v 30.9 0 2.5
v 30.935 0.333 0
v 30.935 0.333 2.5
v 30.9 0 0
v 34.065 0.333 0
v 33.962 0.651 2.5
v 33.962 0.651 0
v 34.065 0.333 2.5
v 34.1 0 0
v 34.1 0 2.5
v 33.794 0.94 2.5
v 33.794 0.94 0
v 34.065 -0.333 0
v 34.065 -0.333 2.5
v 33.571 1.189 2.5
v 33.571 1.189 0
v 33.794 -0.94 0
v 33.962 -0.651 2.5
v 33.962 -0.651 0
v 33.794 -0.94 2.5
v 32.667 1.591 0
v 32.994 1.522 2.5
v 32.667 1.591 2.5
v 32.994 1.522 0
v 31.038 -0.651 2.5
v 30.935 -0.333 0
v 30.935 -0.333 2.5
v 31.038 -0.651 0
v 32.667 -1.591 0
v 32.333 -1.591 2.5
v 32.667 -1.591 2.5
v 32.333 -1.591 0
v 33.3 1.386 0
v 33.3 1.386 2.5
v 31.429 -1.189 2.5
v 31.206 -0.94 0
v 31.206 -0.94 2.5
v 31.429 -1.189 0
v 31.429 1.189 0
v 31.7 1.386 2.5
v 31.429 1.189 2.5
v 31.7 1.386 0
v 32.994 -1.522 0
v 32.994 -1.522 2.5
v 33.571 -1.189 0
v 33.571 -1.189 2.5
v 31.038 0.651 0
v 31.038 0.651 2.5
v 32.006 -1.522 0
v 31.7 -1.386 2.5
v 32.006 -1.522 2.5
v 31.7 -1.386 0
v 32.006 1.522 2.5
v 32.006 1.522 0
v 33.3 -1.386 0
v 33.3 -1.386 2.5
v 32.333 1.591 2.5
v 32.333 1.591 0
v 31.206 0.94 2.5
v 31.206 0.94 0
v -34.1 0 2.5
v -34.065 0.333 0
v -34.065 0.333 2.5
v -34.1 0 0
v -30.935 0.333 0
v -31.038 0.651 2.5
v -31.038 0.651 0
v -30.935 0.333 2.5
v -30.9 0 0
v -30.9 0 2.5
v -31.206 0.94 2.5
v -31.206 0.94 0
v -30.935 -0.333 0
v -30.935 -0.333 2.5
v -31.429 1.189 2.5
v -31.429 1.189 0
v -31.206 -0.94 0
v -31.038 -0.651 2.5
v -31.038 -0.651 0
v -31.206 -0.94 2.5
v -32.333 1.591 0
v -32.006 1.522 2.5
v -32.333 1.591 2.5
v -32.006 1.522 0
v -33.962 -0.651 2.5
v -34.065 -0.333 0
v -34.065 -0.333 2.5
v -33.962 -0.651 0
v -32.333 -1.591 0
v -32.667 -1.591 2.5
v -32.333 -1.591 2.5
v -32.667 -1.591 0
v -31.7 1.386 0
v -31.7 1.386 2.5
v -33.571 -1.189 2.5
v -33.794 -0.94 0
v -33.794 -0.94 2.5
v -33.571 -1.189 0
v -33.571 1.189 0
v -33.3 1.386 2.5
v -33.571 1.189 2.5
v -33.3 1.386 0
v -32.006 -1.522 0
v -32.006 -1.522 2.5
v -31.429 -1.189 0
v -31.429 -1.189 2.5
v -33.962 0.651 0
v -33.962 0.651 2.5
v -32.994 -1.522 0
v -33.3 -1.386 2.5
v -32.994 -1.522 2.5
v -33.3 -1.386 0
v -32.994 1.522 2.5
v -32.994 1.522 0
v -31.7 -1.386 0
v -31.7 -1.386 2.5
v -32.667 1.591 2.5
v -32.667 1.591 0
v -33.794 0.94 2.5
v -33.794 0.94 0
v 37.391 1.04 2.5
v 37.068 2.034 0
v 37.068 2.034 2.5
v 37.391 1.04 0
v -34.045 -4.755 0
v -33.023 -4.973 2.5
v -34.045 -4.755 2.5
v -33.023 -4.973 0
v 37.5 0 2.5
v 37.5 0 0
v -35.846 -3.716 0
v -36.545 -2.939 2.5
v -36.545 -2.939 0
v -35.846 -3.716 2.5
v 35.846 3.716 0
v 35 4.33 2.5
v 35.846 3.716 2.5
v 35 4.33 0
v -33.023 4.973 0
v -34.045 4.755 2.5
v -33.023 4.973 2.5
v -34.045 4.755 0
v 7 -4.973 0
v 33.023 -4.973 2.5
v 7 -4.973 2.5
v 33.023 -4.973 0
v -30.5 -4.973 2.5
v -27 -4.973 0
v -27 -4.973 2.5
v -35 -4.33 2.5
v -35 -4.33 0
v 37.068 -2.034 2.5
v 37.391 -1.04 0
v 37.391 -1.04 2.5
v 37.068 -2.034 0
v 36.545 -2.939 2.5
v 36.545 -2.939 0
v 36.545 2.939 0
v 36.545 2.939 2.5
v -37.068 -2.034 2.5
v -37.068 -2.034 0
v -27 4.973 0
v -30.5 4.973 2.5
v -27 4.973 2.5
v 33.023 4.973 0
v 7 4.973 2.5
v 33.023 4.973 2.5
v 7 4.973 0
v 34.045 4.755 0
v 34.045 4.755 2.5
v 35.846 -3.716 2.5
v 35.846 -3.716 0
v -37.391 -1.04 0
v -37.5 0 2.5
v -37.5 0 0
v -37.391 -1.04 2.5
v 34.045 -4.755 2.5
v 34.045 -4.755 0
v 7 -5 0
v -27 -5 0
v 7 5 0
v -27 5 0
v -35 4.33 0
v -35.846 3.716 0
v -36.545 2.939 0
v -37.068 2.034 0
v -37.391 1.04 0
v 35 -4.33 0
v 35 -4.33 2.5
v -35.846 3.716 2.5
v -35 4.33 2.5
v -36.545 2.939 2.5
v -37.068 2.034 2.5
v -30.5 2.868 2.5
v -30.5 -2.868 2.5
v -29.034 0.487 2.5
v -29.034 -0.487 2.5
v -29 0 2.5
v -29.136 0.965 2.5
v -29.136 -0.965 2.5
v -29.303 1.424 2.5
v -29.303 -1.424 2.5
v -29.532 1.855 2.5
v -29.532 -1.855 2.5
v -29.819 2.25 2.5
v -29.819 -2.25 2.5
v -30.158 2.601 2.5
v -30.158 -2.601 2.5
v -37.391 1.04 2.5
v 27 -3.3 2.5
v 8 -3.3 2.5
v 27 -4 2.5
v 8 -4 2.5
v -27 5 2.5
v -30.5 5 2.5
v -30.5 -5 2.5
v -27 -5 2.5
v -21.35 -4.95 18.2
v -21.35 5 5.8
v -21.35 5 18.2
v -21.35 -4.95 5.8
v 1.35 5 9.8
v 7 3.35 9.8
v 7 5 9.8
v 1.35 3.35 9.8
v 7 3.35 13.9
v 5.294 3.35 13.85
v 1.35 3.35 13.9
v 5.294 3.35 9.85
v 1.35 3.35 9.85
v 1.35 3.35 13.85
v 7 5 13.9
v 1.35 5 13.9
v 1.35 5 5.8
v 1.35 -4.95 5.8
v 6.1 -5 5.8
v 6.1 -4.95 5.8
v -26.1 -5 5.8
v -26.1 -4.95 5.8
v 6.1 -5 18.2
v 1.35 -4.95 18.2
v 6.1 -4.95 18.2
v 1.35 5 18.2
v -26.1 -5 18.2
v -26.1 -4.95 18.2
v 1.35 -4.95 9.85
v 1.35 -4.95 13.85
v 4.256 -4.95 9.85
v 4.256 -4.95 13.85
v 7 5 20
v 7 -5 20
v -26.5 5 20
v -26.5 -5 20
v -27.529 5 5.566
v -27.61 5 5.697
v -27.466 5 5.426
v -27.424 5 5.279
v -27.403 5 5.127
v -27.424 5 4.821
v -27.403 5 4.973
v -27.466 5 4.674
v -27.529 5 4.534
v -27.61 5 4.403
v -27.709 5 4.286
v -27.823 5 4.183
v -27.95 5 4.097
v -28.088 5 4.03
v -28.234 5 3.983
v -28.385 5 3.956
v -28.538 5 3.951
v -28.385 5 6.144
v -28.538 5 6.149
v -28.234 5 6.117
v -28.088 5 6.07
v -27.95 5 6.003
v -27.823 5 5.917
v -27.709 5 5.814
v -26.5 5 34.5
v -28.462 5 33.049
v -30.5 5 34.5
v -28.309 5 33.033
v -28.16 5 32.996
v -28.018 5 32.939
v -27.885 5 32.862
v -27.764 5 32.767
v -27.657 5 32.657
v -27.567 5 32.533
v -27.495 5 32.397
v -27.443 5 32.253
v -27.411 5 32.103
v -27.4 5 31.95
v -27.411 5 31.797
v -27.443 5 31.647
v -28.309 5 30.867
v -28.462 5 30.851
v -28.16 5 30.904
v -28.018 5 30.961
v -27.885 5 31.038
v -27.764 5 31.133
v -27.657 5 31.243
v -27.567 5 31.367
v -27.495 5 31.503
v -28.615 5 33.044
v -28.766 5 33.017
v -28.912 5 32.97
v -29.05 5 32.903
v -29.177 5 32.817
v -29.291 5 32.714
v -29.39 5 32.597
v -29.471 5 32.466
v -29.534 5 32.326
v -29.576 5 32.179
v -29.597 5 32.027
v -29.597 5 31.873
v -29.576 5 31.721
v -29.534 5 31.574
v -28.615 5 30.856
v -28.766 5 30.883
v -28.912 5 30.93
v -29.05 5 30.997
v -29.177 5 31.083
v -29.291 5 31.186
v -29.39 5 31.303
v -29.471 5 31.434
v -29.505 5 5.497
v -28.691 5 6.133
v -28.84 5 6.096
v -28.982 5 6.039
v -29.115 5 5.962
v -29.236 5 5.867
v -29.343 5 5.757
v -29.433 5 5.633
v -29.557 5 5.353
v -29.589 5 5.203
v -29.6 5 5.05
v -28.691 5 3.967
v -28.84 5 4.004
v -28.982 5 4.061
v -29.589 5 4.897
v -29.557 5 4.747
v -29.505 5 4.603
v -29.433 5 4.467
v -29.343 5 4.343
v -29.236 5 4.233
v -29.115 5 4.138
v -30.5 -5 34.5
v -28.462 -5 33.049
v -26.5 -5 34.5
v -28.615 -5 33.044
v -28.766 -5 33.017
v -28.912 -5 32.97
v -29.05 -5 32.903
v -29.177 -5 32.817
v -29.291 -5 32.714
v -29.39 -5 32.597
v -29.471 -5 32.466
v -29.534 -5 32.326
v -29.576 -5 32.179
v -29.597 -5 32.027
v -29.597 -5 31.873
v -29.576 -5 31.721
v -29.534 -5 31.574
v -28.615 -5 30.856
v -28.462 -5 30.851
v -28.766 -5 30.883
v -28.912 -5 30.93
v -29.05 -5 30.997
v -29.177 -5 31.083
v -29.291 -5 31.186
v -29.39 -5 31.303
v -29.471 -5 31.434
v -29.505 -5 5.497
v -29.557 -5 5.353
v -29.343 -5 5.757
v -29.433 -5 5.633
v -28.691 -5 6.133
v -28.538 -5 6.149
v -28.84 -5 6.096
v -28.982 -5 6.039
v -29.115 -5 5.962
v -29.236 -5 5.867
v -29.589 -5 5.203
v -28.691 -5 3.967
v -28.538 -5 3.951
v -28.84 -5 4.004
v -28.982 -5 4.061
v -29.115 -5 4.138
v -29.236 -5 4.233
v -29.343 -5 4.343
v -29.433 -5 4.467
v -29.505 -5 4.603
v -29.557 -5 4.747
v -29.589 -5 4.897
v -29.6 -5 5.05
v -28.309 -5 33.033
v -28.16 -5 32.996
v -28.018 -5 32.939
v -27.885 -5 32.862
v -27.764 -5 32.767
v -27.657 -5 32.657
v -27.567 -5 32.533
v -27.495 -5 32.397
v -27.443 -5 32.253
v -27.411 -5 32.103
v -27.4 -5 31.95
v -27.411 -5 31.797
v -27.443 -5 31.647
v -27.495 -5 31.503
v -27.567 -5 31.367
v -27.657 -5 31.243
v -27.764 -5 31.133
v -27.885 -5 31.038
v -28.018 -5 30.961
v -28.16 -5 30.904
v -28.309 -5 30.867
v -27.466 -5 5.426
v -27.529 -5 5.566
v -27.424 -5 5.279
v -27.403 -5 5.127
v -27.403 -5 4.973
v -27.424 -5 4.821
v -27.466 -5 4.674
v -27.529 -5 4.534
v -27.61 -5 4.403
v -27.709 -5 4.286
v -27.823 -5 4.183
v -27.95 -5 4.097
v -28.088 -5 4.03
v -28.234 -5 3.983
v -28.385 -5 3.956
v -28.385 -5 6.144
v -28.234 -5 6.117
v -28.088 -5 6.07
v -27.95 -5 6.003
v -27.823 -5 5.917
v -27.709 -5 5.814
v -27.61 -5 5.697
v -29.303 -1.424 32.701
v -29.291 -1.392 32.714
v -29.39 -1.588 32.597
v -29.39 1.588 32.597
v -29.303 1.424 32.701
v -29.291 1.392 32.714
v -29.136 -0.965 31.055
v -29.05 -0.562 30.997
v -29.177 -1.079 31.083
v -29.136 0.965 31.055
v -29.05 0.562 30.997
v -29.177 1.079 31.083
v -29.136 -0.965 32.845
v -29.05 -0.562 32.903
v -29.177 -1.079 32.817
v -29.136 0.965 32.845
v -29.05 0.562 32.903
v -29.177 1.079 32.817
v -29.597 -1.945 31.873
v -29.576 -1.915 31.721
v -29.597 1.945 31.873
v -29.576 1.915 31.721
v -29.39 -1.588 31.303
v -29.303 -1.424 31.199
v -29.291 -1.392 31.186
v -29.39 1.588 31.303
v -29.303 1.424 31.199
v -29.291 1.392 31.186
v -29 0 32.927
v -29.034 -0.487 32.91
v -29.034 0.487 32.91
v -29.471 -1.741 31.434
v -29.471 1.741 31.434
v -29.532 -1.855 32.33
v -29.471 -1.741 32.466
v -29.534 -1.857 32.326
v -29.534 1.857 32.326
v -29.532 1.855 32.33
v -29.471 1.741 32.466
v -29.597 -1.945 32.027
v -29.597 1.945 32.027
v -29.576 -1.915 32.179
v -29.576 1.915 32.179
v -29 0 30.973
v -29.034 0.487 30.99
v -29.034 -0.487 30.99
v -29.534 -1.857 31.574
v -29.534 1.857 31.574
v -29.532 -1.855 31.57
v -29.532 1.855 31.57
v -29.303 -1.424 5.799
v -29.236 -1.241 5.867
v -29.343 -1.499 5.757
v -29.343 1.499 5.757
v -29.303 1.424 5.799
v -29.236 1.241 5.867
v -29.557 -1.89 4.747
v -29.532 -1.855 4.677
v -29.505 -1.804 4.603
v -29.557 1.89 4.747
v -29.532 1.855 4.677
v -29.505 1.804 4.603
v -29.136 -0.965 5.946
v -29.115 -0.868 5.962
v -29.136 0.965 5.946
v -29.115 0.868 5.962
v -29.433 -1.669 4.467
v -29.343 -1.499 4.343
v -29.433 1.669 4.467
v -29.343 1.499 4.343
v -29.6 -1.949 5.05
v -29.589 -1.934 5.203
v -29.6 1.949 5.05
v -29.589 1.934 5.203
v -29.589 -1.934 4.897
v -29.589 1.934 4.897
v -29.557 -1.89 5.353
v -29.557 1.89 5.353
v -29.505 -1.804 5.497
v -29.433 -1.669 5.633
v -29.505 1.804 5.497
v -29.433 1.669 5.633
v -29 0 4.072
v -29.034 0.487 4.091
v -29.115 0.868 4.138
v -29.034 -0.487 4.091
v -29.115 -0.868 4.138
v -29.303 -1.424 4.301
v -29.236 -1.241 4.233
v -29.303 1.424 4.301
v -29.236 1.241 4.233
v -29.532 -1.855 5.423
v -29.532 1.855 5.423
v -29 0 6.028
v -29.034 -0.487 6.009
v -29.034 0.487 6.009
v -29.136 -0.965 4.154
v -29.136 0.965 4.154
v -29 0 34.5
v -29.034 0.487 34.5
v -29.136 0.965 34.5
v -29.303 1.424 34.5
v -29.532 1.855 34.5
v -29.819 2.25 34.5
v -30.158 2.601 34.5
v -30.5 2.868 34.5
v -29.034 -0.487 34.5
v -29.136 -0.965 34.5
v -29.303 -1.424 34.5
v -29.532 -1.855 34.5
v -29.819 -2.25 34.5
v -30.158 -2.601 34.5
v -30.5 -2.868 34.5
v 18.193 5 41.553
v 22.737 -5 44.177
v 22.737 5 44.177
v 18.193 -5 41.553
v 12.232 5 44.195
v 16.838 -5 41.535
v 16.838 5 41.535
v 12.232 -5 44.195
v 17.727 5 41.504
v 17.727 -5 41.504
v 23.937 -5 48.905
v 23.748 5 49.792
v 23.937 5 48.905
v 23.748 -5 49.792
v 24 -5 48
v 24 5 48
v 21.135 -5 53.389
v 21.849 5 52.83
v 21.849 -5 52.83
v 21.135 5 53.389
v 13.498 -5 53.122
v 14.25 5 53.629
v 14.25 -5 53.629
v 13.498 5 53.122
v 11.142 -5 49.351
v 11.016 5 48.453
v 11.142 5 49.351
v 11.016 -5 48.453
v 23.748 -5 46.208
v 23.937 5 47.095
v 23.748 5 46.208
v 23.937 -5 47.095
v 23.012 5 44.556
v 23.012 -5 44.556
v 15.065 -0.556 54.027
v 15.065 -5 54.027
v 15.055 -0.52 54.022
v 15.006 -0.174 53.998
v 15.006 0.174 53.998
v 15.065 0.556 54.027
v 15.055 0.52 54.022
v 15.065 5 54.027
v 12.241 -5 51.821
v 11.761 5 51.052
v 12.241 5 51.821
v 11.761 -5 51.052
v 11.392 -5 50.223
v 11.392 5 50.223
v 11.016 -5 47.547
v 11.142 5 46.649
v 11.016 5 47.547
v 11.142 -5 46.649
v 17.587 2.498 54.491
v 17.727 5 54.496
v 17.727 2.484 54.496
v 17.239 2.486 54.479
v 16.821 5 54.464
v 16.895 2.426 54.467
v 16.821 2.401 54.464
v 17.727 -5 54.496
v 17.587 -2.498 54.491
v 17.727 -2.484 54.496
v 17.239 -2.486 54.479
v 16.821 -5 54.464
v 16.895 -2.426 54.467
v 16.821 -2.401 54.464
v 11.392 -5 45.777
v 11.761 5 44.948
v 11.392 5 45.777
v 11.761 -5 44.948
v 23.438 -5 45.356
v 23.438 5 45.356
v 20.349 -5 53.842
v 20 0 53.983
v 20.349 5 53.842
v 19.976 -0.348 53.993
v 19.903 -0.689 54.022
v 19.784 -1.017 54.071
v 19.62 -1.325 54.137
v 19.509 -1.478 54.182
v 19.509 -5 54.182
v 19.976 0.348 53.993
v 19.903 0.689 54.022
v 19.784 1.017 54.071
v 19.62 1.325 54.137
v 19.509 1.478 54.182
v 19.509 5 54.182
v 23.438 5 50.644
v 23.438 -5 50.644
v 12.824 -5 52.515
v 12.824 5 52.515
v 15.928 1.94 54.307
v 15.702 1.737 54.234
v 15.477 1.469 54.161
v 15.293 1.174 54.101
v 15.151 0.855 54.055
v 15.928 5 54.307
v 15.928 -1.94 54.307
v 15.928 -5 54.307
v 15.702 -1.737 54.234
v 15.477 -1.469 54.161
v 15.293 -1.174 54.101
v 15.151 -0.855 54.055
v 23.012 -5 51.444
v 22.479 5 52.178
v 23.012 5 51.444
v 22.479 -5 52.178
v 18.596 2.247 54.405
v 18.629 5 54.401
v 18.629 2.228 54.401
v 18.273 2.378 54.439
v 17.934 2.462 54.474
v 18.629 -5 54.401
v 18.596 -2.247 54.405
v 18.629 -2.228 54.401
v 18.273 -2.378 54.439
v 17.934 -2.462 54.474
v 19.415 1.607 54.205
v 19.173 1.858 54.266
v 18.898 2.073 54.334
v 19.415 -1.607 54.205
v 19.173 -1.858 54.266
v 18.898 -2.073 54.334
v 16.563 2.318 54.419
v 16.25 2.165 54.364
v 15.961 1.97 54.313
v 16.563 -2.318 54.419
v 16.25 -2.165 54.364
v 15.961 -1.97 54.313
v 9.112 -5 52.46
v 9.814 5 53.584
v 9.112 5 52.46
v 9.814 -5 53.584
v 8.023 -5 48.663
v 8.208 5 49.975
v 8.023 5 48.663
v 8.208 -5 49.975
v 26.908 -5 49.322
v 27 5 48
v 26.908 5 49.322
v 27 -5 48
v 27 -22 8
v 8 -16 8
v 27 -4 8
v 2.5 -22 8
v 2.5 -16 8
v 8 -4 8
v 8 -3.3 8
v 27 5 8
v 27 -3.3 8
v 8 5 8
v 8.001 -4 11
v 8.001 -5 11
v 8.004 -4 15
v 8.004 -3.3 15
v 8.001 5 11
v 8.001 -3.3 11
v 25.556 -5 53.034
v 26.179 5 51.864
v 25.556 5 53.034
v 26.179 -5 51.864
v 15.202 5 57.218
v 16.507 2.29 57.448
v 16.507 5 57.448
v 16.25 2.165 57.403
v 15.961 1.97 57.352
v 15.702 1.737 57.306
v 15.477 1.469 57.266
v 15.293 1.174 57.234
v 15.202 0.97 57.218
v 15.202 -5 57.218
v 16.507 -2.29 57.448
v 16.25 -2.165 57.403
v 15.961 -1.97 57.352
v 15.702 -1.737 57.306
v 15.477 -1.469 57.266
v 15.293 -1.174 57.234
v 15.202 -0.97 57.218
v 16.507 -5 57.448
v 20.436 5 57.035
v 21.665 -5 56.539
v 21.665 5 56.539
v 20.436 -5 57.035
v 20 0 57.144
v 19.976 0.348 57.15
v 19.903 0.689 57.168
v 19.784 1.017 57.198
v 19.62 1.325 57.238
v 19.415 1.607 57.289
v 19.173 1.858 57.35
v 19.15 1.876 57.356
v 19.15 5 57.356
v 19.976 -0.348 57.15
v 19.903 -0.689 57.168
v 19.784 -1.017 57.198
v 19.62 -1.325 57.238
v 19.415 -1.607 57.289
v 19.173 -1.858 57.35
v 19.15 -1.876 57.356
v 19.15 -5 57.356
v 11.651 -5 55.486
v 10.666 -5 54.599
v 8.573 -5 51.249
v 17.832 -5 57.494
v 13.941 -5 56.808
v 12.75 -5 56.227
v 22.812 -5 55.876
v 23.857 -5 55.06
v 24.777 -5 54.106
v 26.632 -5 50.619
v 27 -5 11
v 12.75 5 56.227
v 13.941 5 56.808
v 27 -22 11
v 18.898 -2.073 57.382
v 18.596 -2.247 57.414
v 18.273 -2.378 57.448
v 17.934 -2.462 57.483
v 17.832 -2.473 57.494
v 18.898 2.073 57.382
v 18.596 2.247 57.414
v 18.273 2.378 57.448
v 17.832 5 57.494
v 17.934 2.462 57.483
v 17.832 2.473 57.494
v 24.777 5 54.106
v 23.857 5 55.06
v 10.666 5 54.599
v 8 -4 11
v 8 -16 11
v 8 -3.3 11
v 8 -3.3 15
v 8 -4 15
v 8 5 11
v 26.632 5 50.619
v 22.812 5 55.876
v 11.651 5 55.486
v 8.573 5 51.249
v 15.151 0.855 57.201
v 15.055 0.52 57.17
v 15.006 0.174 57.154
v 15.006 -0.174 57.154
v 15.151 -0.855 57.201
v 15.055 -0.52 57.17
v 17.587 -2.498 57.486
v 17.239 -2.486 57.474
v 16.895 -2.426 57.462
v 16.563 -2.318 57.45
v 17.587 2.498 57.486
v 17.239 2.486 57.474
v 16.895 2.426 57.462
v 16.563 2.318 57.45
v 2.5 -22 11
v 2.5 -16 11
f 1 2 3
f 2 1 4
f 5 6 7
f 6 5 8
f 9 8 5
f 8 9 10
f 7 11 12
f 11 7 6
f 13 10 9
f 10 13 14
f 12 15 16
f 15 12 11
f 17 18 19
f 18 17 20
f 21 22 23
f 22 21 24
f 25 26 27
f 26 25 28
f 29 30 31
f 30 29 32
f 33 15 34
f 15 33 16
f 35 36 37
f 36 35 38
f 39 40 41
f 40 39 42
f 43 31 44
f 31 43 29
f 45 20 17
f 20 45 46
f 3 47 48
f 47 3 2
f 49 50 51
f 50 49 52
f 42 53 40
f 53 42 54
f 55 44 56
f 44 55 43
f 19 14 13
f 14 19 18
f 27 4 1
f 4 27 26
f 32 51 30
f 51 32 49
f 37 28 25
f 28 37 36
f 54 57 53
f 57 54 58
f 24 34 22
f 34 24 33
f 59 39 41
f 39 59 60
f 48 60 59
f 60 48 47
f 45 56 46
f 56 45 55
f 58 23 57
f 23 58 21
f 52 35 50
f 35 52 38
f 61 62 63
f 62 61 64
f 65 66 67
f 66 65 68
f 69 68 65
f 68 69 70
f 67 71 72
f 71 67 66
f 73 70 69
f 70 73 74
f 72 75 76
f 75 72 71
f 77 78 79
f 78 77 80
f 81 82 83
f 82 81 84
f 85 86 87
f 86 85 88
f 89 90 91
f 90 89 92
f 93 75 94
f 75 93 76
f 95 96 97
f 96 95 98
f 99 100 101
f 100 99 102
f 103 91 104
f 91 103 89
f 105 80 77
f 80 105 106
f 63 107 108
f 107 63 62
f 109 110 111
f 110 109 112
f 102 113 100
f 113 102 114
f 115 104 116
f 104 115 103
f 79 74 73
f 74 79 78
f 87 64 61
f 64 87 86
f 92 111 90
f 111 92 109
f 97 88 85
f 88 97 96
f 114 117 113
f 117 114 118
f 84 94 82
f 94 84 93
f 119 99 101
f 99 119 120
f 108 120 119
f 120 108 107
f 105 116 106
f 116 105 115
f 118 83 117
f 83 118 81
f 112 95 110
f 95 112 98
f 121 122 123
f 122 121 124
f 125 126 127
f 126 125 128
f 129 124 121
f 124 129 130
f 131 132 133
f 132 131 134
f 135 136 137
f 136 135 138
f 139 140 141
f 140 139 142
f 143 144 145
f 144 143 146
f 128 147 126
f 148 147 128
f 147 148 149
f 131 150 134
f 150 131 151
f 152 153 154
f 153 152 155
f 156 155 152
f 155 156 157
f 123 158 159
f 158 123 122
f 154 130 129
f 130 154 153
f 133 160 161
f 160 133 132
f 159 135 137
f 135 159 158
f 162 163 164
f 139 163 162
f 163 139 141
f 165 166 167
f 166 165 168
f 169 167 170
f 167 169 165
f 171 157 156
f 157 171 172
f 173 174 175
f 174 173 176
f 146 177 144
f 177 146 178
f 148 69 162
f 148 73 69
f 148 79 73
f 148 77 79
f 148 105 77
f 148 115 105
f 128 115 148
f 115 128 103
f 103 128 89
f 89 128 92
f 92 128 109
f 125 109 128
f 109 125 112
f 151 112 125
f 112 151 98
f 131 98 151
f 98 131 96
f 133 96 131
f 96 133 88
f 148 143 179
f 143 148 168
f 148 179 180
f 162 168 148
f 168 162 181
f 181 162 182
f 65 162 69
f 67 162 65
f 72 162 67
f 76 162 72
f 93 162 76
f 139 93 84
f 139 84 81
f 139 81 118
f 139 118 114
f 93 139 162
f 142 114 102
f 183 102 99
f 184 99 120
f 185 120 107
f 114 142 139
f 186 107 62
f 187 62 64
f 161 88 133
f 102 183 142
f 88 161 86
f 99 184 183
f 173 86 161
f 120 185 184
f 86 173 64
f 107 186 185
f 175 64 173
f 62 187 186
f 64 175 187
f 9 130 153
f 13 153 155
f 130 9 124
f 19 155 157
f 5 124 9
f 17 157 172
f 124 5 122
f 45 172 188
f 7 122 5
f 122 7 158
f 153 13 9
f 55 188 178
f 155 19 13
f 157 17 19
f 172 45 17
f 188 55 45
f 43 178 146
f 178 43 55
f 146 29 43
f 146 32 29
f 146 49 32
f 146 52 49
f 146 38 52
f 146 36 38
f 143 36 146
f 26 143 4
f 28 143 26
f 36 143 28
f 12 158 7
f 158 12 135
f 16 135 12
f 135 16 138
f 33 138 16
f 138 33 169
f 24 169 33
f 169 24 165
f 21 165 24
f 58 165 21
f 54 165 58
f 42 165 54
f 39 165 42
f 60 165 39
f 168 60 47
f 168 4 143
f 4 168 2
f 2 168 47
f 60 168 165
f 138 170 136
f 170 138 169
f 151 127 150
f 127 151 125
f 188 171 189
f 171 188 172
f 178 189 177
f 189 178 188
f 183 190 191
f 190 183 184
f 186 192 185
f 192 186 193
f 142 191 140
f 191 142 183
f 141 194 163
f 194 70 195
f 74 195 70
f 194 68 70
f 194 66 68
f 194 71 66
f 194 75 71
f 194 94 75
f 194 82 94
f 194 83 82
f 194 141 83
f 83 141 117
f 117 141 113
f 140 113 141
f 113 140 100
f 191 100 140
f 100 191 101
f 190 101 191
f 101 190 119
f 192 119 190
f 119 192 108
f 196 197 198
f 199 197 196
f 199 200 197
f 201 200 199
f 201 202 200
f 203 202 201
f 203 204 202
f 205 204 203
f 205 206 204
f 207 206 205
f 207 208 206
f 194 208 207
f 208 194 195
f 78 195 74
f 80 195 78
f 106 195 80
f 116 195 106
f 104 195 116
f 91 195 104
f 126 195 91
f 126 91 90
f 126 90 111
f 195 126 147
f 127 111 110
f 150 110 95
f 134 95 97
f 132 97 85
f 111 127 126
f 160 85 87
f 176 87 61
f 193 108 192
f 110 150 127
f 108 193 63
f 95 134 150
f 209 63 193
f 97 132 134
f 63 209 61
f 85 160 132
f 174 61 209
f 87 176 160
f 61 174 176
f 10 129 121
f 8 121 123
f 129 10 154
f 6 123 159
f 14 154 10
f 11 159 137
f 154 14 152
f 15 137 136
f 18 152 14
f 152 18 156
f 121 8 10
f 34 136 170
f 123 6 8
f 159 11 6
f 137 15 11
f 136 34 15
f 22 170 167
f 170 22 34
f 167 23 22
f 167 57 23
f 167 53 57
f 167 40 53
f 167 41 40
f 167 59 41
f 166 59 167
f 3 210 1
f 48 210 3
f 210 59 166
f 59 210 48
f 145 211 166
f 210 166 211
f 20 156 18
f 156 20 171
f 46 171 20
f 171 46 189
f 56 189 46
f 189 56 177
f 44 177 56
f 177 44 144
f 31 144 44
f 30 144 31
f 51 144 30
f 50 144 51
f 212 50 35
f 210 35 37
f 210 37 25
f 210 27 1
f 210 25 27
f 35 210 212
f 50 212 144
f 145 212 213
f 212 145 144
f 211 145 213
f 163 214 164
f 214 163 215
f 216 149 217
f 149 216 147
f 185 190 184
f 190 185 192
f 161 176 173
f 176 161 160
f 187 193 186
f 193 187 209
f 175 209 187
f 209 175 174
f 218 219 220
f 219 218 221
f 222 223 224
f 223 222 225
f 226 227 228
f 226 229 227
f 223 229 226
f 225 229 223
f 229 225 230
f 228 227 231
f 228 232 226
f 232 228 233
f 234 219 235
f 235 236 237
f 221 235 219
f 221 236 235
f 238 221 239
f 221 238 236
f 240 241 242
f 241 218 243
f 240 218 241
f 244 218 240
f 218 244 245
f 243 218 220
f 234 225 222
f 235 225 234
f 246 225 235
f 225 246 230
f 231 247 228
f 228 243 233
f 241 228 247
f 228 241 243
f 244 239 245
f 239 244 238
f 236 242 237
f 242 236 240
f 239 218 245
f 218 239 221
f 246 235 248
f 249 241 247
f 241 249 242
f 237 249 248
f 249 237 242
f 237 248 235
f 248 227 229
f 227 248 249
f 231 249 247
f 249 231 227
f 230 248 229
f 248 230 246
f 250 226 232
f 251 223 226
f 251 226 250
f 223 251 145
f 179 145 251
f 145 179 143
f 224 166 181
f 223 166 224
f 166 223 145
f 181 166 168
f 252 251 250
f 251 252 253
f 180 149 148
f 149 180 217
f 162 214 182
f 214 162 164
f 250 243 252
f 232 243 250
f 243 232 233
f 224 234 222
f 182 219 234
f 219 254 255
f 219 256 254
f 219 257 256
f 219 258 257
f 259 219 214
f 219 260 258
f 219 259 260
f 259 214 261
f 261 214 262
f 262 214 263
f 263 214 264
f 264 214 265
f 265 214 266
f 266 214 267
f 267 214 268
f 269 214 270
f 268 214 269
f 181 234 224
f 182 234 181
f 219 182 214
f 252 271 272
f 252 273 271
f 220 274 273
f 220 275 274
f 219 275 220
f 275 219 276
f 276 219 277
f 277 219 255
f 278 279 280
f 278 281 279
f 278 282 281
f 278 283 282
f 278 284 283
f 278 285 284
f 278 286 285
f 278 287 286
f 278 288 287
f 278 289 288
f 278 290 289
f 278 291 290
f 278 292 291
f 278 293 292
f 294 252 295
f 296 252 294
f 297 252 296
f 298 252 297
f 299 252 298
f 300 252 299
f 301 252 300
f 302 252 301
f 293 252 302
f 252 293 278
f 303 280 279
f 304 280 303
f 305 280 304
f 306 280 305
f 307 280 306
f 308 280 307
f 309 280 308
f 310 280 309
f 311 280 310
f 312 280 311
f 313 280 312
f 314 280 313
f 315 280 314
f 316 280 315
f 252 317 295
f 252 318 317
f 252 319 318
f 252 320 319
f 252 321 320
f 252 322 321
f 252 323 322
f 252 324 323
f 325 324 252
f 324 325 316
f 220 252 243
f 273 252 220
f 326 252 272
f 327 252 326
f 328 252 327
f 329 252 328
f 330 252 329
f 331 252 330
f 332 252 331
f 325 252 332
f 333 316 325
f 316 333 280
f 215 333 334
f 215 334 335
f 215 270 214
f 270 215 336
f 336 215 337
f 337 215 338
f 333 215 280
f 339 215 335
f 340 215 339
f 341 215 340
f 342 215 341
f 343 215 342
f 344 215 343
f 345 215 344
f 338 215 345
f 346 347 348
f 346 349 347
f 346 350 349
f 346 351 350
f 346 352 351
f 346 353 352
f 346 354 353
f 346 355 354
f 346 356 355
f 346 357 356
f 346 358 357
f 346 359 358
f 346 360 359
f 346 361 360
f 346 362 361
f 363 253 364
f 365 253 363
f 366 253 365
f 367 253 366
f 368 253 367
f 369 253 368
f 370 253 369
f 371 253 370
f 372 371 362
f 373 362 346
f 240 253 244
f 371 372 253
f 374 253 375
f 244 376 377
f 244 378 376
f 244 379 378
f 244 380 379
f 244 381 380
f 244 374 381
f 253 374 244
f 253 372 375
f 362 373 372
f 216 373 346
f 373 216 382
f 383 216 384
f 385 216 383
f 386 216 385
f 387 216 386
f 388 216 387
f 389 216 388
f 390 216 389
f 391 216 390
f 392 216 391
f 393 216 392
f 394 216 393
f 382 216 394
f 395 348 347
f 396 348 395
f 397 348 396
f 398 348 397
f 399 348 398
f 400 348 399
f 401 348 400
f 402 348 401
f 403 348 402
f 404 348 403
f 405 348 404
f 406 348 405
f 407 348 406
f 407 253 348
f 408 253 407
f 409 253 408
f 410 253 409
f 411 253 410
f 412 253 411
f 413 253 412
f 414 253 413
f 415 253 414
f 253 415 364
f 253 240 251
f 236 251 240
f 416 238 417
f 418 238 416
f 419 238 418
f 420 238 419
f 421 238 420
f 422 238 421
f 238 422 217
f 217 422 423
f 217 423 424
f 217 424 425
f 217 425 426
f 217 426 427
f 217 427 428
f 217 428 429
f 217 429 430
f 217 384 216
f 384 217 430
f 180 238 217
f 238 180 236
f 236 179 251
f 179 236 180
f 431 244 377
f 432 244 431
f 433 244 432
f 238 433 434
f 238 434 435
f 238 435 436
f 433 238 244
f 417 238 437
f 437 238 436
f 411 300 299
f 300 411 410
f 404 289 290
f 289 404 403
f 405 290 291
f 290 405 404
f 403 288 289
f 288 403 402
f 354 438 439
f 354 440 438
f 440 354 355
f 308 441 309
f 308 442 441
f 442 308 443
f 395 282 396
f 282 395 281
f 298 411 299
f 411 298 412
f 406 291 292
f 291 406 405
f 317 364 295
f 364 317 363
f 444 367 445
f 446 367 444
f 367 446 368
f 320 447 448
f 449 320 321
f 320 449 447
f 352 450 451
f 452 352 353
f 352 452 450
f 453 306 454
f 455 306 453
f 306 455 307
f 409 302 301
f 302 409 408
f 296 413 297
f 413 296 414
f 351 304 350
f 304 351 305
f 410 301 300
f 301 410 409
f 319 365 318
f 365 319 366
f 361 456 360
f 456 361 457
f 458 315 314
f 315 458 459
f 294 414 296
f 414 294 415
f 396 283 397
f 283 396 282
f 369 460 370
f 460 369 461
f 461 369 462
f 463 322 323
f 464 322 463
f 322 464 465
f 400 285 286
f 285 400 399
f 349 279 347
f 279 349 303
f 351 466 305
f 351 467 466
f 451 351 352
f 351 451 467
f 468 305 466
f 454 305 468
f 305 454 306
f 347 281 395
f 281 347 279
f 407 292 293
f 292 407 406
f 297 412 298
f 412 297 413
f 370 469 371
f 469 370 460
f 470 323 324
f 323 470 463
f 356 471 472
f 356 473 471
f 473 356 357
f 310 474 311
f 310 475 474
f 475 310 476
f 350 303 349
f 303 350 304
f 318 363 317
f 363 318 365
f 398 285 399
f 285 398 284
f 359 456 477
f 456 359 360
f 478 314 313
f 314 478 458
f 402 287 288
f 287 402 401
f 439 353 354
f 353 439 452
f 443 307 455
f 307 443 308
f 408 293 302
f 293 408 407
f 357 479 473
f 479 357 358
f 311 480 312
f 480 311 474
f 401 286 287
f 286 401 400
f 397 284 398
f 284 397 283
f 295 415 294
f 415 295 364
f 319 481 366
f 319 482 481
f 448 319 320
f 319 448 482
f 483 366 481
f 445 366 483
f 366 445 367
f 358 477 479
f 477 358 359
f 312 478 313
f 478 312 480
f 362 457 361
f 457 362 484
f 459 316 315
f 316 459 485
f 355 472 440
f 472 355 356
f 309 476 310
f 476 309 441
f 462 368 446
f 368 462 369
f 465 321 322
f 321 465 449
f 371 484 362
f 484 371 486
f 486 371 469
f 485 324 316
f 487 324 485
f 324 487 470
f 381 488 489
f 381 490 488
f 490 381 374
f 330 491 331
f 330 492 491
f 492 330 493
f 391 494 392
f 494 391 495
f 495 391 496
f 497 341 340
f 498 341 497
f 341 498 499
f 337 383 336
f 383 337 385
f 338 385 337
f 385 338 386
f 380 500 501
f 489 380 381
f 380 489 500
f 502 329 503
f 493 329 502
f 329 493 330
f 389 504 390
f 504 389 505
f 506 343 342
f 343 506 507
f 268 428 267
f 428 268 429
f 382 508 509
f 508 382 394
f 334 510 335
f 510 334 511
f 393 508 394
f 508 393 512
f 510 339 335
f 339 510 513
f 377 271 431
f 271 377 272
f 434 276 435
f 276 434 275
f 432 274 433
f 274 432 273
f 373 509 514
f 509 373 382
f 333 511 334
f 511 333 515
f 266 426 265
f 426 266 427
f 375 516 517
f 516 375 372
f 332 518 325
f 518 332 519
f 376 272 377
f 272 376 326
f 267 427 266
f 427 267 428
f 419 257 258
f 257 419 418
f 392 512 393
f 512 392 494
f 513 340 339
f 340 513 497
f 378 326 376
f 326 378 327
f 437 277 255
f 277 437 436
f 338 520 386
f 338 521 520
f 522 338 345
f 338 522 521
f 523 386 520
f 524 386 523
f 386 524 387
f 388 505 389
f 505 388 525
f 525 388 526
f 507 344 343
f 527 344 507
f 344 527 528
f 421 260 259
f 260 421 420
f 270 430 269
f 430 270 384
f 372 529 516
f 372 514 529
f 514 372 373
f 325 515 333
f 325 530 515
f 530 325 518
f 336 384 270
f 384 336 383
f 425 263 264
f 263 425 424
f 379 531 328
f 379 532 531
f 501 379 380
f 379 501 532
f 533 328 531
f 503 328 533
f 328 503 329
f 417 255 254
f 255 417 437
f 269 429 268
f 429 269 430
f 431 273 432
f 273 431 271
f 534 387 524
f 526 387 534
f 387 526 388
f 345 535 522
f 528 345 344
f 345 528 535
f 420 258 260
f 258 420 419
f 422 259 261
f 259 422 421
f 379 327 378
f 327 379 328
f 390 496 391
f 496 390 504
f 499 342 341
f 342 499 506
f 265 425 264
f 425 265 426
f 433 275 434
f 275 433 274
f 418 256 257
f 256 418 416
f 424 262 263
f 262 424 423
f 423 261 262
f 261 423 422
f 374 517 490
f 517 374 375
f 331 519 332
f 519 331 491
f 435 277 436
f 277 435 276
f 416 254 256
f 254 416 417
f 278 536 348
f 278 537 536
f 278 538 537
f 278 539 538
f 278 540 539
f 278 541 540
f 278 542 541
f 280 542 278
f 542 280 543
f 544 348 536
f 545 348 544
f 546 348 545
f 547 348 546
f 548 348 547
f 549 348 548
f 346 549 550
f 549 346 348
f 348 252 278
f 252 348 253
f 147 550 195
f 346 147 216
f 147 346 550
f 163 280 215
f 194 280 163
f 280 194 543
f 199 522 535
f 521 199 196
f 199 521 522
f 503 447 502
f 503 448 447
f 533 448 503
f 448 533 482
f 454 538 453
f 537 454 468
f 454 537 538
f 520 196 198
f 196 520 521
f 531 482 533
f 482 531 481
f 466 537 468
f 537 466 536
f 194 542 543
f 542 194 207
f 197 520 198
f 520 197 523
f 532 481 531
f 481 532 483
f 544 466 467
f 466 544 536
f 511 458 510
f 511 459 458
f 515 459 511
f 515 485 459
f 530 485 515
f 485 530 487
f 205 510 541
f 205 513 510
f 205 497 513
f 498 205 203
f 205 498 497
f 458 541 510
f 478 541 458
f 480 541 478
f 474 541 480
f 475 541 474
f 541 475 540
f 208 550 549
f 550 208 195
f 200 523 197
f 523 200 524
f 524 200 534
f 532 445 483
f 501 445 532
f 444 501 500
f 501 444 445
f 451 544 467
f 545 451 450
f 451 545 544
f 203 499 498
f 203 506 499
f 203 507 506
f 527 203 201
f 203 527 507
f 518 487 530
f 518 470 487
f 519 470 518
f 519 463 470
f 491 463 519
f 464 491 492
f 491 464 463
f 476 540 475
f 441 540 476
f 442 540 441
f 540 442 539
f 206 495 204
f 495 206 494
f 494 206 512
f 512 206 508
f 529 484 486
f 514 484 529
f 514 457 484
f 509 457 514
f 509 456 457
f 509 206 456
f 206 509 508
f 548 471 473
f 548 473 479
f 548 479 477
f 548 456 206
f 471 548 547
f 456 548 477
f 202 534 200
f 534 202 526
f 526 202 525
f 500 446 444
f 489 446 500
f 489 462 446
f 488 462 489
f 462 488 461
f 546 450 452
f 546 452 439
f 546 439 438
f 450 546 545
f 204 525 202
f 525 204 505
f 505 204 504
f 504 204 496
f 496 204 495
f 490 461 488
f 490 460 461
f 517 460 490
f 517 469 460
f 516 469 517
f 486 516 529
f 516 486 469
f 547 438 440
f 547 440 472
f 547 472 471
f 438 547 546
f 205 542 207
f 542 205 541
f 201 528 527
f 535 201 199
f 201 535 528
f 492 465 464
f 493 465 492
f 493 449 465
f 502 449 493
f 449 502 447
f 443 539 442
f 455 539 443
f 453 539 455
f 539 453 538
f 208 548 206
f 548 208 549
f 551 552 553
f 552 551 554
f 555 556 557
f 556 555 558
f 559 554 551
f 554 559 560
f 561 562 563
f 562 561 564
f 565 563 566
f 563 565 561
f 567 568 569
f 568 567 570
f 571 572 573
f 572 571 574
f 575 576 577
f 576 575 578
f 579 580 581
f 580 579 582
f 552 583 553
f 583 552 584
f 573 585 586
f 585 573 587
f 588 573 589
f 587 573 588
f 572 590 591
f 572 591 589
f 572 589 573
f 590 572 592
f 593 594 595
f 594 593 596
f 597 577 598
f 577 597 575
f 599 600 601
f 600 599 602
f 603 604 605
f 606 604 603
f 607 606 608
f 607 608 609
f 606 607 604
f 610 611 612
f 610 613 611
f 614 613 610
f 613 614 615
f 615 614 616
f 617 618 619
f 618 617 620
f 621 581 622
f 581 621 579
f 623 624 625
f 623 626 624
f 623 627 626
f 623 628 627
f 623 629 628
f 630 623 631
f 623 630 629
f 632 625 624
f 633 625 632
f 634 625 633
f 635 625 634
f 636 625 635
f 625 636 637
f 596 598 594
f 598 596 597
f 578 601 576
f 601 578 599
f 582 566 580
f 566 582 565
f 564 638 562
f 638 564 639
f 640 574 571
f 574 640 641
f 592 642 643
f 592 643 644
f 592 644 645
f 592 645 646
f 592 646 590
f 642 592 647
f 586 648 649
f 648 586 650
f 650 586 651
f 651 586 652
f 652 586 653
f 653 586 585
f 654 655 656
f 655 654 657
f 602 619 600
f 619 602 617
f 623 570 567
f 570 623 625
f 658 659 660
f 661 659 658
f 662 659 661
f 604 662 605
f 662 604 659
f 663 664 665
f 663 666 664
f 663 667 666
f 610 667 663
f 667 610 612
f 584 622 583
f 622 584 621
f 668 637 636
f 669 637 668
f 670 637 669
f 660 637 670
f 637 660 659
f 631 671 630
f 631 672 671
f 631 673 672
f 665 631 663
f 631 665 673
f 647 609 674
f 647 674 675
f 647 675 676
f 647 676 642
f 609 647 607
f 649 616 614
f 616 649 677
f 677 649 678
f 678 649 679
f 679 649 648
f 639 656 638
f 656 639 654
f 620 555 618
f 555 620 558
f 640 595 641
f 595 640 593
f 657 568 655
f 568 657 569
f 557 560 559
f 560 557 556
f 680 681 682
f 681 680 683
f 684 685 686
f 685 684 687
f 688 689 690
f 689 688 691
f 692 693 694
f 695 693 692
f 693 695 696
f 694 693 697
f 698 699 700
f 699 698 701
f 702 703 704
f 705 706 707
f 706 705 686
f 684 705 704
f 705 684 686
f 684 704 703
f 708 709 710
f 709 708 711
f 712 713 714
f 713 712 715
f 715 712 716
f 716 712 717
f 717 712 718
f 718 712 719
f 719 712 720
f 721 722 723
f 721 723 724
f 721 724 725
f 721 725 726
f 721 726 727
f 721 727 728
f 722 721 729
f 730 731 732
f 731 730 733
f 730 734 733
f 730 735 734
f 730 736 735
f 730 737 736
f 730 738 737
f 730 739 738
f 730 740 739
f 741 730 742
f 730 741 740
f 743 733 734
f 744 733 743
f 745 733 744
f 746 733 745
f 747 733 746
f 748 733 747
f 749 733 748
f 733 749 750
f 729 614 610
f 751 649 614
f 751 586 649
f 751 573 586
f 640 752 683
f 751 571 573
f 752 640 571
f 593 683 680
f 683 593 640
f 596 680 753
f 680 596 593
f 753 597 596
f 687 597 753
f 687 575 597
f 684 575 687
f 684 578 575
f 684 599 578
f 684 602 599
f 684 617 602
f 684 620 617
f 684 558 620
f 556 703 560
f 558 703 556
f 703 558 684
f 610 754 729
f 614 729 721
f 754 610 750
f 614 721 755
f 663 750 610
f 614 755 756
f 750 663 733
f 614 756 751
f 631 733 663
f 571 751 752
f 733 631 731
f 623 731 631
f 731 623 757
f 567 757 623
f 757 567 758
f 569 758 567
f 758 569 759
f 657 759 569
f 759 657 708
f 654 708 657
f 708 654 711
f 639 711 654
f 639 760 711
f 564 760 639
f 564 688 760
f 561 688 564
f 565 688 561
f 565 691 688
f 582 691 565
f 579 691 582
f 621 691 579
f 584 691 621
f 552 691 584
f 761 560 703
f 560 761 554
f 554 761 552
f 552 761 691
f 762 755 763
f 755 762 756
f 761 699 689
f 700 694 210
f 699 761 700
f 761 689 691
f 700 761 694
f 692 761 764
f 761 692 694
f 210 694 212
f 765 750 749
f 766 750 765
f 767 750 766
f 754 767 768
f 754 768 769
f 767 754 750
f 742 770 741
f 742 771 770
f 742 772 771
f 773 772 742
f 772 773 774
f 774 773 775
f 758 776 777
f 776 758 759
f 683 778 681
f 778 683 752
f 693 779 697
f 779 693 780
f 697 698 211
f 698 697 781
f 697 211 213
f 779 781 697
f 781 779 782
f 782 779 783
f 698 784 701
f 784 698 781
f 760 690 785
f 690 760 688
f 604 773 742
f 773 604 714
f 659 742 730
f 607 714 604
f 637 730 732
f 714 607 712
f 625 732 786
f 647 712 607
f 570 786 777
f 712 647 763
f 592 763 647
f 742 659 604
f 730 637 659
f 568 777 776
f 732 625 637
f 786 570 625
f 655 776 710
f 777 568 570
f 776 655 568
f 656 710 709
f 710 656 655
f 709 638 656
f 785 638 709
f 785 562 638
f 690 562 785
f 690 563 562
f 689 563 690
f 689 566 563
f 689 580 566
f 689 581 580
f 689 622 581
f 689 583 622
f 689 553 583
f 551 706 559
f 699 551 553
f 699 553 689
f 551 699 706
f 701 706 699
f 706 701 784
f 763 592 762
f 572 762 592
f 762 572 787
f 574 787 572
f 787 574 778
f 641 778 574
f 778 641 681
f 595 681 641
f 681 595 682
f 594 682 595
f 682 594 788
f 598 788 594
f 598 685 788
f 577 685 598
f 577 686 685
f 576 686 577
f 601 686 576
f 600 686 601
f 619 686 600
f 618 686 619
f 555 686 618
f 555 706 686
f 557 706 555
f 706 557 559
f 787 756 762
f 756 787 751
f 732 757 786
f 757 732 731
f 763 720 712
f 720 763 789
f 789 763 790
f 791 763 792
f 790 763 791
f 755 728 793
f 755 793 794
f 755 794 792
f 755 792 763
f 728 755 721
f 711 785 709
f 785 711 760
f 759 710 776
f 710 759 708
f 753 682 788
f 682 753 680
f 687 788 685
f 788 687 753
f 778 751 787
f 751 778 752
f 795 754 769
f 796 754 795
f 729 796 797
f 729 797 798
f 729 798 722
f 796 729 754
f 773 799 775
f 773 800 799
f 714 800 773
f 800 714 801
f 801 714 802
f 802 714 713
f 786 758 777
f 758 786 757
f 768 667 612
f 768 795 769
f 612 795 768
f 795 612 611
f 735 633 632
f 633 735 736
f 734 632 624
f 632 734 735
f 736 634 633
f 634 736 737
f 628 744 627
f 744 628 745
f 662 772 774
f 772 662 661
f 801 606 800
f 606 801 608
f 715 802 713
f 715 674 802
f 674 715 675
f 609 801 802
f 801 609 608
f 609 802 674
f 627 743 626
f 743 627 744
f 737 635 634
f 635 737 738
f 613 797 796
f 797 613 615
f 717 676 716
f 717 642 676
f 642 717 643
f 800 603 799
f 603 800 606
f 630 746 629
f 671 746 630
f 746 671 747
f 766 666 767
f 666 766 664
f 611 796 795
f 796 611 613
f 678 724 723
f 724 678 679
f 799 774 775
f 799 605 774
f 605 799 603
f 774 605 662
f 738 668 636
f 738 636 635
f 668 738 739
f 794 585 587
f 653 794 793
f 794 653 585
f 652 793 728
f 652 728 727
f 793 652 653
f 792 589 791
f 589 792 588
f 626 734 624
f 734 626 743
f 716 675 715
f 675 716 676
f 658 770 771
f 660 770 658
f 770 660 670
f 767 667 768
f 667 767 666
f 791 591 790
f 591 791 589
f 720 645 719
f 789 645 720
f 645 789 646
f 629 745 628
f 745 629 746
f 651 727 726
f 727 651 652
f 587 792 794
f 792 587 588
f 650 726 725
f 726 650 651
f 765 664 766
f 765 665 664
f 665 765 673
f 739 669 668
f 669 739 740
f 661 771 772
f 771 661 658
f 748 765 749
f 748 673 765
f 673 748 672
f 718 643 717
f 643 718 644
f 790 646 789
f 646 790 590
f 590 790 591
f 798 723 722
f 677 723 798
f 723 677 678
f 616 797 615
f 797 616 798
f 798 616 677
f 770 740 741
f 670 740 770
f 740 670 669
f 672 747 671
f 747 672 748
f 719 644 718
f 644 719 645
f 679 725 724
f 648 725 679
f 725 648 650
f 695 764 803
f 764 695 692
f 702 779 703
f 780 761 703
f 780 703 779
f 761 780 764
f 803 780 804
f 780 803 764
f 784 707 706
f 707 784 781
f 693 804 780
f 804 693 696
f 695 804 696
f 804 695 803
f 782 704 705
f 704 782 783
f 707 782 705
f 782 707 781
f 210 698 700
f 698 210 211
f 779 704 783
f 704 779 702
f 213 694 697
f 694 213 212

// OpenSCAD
// file: mounting.scad
m3_head_clearance = 5.3;
m3_screw_clearance = 3.2;
$fn=30;

module m3_bolt(bolt_len) {
    head_len=5;
    translate([0,0,bolt_len/2]) cylinder(d=m3_screw_clearance,h=bolt_len+0.05,center=true);
    translate([0,0,-head_len/2]) cylinder(d=m3_head_clearance,h=head_len,center=true);
}

module bolts(hole_distance,bolt_len) {
    translate([hole_distance/2,0,0]) m3_bolt(bolt_len);
    translate([-hole_distance/2,0,0]) m3_bolt(bolt_len);
}

// clearance between bolthole center and belt
upper_clearance = 5.0;

// measured parameters
hole_distance = 65.0;
bolt_len = 15.0;

module support(support_th) {
    difference() {
        hull() {
            translate([hole_distance/2,0,support_th/2])
                cylinder(r=upper_clearance,h=support_th,center=true);
            translate([-hole_distance/2,0,support_th/2])
                cylinder(r=upper_clearance,h=support_th,center=true);
        }
        translate([0,0,-0.05]) bolts(hole_distance, bolt_len);
    }
}

servo_screw_hole_d = 1.8;

support(2.5);
// file: sg90.scad
$fn=50;

// oriented facing up, with the center of the bottom
// on the XY plane

// error term for making sure tangent objects are fused
fuse = 0.0001;

// measurements
    m_body_width = 22.6;
    m_body_height = 22.1;
    m_body_base_to_wingtop = 18.0;
    m_body_wing_height = 2.5;
    m_body_wingtip_to_wingtip = 32.1;
    m_body_depth = 12.3;
    m_cord_depth = 4;
    m_cord_height = 3;
    m_cord_zloc = 5.6;
    
    m_boss_height = 5;
    m_boss_diameter = 11.6;
    
    m_horn_top = 31.4;
    m_horn_base_diameter = 7.1;
    m_horn_end_diameter = 3.5;
    m_horn_length = 32;
    m_horn_th = 1.3;

module sg90(horn_angle=0, cord_length=6) {
    body();
    cord(length = cord_length);
    boss();
    horn(angle=horn_angle);
}

module horn(angle = 0) {
    horn_height = m_horn_top - (m_body_height + m_boss_height);
    translate([m_body_width/4,0,m_body_height+m_boss_height])
    rotate([0,0,angle])
    union() {
        cylinder(h=horn_height,
            d = m_horn_base_diameter);
        translate([0,0,horn_height - m_horn_th])        
        hull() {
            translate([m_horn_length/2,0,0])
            cylinder(h=m_horn_th, d = m_horn_end_diameter);
            translate([-m_horn_length/2,0,0])
            cylinder(h=m_horn_th, d = m_horn_end_diameter);
            cylinder(h=m_horn_th, d = m_horn_base_diameter);
        }
    }
}

module cord(length = 6) {
    // cord clearance
    translate([-fuse, 0, 0])
    translate([m_body_width/2,m_cord_depth-m_body_depth/2,
        m_cord_zloc-m_cord_height/2])
    cube([length, m_cord_depth, m_cord_height]);
}

module body() {
    translate([0,0,-fuse])
    translate([-m_body_width/2, -m_body_depth/2, 0])
    union() {
        cube([m_body_width, m_body_depth, m_body_height]);
        translate([-(m_body_wingtip_to_wingtip - m_body_width)/2,
            0, m_body_base_to_wingtop - m_body_wing_height])
        cube([m_body_wingtip_to_wingtip, 
            m_body_depth, m_body_wing_height]);
    }
}

module boss() {
    translate([0,0,m_body_height])
    hull() {
        cylinder(h=m_boss_height, d = m_boss_diameter);
        translate([m_body_width/4,0,0])
        cylinder(h=m_boss_height, d = m_boss_diameter);
    }        
}   

sg90();
// main file
use <sg90.scad>
use <mounting.scad>

filament_diameter = 1.75 + 0.15;
clip_diameter = 5;
clip_ht = 3.5;

guide_width = 25;
guide_th = 2;

$fn=45;
thumbscrew_bolt_diameter = 5;

clearances_motor = 0.1;
module motor_bracket() {
    cm = clearances_motor;
    difference() {
        translate([-10,0,10])
        cube([34,10,20], center=true);
        translate([-10,18 - (5 + 2.5),12])
        rotate([90,0,0])
        union() {
            minkowski() {
                sg90(horn_angle=30);
                cube([cm,cm,cm], center=true);
            }
            // cable entry clearance
            hull() {
                translate([-0.5,0,12])
                cord(length=3);
                cord(length=4);
            }
        }
    }
}

module pen_holder() {
    ph_h = 10;
    outer_diameter = 19;
    inner_diameter = 13;
    center_to_hinge = 40;
    translate([-outer_diameter/2,0,0])
    cube([outer_diameter,3,27]);
    translate([-15,0,27-6])
    cube([10,3,6]);
    difference() { 
        hull() { // outside of holder
            translate([0,center_to_hinge,0])
            cylinder(h=ph_h,d=outer_diameter);
            translate([-outer_diameter/2,0,0])
            cube([outer_diameter,1,ph_h]);
        }
        translate([0,center_to_hinge,0])
        intersection() {
            cylinder(h=22,d=inner_diameter,center=true);
            translate([0,4.7,0])
            intersection_for( i = [30,-30] ) {
            rotate([0,0,i])
            cube([20,20,22],center=true);
            }
        }
        translate([0,center_to_hinge,ph_h/2])
        rotate([-90,0,0])
        cylinder(d=5, h=20);
    }
}

module pen_hinge() {
    translate([8,-4,0])
    cube([19,0.7,15]);
    translate([8+19/2,5,8])
    rotate([90,0,0])
    pen_holder();
}



gl_ht = 10.0;
gl_width = 32.0;
gl_depth = 4.0;

module guide () {
    difference(){
    translate([-28.5,0,2.5+gl_width/2])
    rotate([0,90,0])
    rotate([90,0,0])
    difference() {
        // body
        cube([gl_width,gl_depth,gl_ht],center=true);
        // filament holes
        for (theta = [90, -90]) {
            rotate([0,0,theta])
            translate([0,(guide_width+filament_diameter)/2,0])
            cylinder(d=filament_diameter+0.3, h=100,center=true);
        }
    }
    translate([-65/2,0,0])
    cylinder(d=7,h=40);
    }
}

//#color("#8080ff") 
//translate([-10,18 - (5 + 2.5),12])
//rotate([90,0,0]) sg90(horn_angle=0);
union() {
    support(2.5);
    motor_bracket();
    guide();
}
color("#00ff00") pen_hinge();
